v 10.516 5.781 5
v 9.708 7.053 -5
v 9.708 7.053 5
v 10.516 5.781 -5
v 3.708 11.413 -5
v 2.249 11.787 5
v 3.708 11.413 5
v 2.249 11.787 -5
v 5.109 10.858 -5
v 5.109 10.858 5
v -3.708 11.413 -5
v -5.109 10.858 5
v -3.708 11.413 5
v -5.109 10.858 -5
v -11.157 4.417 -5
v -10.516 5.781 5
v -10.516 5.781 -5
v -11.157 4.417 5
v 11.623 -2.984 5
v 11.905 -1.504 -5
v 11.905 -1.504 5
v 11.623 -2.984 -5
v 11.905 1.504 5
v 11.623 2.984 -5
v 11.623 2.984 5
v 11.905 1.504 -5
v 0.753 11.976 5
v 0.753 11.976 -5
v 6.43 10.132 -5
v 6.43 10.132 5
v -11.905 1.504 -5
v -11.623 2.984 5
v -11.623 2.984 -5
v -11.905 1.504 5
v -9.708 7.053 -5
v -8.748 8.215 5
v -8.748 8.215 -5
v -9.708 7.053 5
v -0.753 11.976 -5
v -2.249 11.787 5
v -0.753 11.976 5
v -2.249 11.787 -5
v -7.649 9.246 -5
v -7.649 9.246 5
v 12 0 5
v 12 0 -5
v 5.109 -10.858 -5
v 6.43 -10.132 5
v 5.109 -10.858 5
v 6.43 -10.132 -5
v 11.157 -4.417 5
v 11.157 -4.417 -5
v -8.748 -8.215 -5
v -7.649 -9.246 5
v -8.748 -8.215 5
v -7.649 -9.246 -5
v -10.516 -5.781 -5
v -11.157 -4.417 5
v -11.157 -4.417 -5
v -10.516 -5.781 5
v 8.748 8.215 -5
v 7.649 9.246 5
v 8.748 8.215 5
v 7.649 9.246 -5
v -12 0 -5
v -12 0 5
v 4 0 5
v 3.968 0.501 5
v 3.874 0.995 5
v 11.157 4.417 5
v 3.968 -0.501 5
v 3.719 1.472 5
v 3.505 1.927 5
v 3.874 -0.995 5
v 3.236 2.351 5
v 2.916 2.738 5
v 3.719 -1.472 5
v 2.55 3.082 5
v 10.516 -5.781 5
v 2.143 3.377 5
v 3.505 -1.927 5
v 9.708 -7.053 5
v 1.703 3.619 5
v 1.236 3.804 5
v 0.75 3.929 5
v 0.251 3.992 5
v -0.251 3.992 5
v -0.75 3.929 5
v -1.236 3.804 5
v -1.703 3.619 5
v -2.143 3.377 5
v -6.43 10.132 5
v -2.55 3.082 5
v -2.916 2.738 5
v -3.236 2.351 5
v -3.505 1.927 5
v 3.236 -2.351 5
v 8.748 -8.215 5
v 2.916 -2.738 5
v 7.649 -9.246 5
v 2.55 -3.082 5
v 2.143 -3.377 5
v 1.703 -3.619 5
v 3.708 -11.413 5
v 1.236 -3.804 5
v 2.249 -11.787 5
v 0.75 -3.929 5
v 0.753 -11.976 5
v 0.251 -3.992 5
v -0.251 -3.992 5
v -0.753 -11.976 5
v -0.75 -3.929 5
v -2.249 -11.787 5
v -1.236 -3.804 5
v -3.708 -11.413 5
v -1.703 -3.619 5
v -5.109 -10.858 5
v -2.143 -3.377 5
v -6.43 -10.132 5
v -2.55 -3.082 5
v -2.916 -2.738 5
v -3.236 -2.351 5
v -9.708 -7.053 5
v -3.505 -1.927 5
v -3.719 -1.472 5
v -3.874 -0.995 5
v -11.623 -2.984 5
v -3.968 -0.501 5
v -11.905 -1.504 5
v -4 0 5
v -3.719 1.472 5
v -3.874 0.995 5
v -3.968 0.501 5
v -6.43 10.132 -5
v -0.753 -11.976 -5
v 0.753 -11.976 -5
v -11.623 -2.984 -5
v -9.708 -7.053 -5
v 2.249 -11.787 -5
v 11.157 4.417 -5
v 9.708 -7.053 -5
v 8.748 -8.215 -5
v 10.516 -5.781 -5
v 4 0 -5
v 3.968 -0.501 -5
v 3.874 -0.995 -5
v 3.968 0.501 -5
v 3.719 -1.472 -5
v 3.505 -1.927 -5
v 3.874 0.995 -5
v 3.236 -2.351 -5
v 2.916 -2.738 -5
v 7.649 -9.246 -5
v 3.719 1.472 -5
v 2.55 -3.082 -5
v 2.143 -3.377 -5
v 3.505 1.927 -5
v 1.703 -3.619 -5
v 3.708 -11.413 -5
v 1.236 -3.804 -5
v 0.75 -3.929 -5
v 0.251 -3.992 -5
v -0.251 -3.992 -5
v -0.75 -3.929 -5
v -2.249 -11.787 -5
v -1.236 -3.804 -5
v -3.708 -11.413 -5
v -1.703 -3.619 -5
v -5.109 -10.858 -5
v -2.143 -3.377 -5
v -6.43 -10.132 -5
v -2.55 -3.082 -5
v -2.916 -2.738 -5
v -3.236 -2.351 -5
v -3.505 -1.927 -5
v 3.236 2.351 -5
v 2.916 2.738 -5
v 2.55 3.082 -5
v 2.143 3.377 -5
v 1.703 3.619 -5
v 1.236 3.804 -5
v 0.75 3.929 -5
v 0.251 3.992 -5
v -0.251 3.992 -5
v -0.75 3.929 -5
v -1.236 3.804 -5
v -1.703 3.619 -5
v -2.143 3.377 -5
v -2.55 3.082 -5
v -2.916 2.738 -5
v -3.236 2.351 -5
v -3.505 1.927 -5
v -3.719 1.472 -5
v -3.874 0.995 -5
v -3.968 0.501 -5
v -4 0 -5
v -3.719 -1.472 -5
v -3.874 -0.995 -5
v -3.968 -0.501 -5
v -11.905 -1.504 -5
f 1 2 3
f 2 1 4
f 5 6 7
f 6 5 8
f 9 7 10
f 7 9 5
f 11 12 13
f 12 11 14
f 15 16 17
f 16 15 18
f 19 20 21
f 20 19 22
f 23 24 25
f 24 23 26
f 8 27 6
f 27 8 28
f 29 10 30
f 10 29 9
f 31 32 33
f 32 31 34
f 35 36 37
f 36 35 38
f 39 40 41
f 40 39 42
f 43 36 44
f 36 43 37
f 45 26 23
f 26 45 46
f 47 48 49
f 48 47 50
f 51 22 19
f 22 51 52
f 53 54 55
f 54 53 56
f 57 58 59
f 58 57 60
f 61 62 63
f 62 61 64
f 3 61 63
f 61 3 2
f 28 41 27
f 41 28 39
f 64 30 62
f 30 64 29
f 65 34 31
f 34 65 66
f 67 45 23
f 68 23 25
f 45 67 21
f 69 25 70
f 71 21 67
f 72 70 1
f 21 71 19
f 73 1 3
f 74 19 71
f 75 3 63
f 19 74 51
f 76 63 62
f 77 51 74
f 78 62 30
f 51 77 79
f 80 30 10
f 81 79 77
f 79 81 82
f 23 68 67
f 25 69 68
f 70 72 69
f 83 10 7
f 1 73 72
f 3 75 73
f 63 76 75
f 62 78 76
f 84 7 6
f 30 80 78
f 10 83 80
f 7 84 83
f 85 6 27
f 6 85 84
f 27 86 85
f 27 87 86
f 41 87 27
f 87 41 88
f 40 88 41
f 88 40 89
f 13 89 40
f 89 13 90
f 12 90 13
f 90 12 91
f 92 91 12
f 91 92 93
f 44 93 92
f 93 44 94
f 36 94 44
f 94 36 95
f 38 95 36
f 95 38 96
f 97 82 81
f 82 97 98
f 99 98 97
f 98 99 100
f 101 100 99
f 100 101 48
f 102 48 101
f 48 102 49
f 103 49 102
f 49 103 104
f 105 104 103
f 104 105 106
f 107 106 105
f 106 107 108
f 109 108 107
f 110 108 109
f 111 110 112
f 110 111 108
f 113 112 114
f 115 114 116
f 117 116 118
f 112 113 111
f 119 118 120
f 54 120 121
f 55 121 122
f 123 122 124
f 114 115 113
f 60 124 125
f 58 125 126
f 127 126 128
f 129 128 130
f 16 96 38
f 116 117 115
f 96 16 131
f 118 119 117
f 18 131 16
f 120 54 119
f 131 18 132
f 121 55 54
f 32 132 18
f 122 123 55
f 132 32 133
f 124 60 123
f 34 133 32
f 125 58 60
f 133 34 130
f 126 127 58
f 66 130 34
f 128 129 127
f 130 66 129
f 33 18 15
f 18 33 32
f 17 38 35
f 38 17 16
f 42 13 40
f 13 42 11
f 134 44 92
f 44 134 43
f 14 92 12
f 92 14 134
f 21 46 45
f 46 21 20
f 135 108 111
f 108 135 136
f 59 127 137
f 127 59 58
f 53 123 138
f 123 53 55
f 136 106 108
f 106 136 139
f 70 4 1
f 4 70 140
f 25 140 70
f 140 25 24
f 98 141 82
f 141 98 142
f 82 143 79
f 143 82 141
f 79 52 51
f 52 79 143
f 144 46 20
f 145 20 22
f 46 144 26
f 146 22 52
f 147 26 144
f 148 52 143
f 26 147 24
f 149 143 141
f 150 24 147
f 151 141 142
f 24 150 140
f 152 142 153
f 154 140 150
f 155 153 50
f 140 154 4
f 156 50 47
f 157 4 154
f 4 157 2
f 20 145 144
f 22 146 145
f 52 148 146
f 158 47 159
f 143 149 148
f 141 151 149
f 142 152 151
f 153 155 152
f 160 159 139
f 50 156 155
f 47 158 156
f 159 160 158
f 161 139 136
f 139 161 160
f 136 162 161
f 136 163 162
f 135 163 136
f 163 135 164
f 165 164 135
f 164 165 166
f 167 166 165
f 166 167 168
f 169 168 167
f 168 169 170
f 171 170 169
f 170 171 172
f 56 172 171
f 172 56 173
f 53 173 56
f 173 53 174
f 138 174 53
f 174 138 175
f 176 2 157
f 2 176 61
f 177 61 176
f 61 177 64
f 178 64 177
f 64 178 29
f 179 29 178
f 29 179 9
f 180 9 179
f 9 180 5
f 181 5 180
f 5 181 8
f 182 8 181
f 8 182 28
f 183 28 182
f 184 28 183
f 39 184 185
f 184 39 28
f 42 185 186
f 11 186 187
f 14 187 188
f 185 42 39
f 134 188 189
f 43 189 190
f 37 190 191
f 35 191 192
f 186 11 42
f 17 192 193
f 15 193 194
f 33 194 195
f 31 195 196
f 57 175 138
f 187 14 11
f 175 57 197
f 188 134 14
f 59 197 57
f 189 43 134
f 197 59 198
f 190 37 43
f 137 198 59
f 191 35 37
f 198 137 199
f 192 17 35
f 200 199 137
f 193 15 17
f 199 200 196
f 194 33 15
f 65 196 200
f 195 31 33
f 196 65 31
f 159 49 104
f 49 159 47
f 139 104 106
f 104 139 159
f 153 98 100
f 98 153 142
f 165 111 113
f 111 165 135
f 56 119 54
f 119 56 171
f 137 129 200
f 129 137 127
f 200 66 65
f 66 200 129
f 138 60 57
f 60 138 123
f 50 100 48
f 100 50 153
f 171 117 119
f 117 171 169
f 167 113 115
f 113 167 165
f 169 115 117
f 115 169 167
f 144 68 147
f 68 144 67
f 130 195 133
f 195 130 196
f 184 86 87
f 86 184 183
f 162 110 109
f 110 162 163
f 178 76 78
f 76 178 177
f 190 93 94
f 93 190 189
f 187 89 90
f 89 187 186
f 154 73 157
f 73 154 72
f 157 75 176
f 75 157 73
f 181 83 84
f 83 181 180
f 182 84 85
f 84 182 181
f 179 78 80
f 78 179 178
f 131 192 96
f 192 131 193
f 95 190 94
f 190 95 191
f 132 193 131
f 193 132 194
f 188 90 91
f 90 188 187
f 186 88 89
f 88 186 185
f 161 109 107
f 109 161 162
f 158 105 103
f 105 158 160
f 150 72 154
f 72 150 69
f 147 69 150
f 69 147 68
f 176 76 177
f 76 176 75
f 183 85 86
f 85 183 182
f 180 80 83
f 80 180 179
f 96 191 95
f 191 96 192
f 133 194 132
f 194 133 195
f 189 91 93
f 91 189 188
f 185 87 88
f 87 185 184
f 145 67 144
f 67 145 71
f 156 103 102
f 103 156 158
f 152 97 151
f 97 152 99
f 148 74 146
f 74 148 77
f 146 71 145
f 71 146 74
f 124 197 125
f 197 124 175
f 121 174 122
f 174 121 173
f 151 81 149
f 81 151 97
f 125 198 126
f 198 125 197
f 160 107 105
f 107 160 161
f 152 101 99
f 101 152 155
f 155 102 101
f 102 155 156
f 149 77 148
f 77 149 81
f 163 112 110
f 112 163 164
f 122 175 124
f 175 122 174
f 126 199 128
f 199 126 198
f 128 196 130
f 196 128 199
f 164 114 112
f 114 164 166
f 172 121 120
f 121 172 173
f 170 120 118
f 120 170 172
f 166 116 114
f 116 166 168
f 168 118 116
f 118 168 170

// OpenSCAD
$fn = 50;


difference() {
	union() {
		translate(v = [0, 0, -5.0000000000]) {
			cylinder(h = 10, r = 12.0000000000);
		}
	}
	union() {
		translate(v = [0, 0, -100.0000000000]) {
			cylinder(h = 200, r = 4);
		}
	}
}
